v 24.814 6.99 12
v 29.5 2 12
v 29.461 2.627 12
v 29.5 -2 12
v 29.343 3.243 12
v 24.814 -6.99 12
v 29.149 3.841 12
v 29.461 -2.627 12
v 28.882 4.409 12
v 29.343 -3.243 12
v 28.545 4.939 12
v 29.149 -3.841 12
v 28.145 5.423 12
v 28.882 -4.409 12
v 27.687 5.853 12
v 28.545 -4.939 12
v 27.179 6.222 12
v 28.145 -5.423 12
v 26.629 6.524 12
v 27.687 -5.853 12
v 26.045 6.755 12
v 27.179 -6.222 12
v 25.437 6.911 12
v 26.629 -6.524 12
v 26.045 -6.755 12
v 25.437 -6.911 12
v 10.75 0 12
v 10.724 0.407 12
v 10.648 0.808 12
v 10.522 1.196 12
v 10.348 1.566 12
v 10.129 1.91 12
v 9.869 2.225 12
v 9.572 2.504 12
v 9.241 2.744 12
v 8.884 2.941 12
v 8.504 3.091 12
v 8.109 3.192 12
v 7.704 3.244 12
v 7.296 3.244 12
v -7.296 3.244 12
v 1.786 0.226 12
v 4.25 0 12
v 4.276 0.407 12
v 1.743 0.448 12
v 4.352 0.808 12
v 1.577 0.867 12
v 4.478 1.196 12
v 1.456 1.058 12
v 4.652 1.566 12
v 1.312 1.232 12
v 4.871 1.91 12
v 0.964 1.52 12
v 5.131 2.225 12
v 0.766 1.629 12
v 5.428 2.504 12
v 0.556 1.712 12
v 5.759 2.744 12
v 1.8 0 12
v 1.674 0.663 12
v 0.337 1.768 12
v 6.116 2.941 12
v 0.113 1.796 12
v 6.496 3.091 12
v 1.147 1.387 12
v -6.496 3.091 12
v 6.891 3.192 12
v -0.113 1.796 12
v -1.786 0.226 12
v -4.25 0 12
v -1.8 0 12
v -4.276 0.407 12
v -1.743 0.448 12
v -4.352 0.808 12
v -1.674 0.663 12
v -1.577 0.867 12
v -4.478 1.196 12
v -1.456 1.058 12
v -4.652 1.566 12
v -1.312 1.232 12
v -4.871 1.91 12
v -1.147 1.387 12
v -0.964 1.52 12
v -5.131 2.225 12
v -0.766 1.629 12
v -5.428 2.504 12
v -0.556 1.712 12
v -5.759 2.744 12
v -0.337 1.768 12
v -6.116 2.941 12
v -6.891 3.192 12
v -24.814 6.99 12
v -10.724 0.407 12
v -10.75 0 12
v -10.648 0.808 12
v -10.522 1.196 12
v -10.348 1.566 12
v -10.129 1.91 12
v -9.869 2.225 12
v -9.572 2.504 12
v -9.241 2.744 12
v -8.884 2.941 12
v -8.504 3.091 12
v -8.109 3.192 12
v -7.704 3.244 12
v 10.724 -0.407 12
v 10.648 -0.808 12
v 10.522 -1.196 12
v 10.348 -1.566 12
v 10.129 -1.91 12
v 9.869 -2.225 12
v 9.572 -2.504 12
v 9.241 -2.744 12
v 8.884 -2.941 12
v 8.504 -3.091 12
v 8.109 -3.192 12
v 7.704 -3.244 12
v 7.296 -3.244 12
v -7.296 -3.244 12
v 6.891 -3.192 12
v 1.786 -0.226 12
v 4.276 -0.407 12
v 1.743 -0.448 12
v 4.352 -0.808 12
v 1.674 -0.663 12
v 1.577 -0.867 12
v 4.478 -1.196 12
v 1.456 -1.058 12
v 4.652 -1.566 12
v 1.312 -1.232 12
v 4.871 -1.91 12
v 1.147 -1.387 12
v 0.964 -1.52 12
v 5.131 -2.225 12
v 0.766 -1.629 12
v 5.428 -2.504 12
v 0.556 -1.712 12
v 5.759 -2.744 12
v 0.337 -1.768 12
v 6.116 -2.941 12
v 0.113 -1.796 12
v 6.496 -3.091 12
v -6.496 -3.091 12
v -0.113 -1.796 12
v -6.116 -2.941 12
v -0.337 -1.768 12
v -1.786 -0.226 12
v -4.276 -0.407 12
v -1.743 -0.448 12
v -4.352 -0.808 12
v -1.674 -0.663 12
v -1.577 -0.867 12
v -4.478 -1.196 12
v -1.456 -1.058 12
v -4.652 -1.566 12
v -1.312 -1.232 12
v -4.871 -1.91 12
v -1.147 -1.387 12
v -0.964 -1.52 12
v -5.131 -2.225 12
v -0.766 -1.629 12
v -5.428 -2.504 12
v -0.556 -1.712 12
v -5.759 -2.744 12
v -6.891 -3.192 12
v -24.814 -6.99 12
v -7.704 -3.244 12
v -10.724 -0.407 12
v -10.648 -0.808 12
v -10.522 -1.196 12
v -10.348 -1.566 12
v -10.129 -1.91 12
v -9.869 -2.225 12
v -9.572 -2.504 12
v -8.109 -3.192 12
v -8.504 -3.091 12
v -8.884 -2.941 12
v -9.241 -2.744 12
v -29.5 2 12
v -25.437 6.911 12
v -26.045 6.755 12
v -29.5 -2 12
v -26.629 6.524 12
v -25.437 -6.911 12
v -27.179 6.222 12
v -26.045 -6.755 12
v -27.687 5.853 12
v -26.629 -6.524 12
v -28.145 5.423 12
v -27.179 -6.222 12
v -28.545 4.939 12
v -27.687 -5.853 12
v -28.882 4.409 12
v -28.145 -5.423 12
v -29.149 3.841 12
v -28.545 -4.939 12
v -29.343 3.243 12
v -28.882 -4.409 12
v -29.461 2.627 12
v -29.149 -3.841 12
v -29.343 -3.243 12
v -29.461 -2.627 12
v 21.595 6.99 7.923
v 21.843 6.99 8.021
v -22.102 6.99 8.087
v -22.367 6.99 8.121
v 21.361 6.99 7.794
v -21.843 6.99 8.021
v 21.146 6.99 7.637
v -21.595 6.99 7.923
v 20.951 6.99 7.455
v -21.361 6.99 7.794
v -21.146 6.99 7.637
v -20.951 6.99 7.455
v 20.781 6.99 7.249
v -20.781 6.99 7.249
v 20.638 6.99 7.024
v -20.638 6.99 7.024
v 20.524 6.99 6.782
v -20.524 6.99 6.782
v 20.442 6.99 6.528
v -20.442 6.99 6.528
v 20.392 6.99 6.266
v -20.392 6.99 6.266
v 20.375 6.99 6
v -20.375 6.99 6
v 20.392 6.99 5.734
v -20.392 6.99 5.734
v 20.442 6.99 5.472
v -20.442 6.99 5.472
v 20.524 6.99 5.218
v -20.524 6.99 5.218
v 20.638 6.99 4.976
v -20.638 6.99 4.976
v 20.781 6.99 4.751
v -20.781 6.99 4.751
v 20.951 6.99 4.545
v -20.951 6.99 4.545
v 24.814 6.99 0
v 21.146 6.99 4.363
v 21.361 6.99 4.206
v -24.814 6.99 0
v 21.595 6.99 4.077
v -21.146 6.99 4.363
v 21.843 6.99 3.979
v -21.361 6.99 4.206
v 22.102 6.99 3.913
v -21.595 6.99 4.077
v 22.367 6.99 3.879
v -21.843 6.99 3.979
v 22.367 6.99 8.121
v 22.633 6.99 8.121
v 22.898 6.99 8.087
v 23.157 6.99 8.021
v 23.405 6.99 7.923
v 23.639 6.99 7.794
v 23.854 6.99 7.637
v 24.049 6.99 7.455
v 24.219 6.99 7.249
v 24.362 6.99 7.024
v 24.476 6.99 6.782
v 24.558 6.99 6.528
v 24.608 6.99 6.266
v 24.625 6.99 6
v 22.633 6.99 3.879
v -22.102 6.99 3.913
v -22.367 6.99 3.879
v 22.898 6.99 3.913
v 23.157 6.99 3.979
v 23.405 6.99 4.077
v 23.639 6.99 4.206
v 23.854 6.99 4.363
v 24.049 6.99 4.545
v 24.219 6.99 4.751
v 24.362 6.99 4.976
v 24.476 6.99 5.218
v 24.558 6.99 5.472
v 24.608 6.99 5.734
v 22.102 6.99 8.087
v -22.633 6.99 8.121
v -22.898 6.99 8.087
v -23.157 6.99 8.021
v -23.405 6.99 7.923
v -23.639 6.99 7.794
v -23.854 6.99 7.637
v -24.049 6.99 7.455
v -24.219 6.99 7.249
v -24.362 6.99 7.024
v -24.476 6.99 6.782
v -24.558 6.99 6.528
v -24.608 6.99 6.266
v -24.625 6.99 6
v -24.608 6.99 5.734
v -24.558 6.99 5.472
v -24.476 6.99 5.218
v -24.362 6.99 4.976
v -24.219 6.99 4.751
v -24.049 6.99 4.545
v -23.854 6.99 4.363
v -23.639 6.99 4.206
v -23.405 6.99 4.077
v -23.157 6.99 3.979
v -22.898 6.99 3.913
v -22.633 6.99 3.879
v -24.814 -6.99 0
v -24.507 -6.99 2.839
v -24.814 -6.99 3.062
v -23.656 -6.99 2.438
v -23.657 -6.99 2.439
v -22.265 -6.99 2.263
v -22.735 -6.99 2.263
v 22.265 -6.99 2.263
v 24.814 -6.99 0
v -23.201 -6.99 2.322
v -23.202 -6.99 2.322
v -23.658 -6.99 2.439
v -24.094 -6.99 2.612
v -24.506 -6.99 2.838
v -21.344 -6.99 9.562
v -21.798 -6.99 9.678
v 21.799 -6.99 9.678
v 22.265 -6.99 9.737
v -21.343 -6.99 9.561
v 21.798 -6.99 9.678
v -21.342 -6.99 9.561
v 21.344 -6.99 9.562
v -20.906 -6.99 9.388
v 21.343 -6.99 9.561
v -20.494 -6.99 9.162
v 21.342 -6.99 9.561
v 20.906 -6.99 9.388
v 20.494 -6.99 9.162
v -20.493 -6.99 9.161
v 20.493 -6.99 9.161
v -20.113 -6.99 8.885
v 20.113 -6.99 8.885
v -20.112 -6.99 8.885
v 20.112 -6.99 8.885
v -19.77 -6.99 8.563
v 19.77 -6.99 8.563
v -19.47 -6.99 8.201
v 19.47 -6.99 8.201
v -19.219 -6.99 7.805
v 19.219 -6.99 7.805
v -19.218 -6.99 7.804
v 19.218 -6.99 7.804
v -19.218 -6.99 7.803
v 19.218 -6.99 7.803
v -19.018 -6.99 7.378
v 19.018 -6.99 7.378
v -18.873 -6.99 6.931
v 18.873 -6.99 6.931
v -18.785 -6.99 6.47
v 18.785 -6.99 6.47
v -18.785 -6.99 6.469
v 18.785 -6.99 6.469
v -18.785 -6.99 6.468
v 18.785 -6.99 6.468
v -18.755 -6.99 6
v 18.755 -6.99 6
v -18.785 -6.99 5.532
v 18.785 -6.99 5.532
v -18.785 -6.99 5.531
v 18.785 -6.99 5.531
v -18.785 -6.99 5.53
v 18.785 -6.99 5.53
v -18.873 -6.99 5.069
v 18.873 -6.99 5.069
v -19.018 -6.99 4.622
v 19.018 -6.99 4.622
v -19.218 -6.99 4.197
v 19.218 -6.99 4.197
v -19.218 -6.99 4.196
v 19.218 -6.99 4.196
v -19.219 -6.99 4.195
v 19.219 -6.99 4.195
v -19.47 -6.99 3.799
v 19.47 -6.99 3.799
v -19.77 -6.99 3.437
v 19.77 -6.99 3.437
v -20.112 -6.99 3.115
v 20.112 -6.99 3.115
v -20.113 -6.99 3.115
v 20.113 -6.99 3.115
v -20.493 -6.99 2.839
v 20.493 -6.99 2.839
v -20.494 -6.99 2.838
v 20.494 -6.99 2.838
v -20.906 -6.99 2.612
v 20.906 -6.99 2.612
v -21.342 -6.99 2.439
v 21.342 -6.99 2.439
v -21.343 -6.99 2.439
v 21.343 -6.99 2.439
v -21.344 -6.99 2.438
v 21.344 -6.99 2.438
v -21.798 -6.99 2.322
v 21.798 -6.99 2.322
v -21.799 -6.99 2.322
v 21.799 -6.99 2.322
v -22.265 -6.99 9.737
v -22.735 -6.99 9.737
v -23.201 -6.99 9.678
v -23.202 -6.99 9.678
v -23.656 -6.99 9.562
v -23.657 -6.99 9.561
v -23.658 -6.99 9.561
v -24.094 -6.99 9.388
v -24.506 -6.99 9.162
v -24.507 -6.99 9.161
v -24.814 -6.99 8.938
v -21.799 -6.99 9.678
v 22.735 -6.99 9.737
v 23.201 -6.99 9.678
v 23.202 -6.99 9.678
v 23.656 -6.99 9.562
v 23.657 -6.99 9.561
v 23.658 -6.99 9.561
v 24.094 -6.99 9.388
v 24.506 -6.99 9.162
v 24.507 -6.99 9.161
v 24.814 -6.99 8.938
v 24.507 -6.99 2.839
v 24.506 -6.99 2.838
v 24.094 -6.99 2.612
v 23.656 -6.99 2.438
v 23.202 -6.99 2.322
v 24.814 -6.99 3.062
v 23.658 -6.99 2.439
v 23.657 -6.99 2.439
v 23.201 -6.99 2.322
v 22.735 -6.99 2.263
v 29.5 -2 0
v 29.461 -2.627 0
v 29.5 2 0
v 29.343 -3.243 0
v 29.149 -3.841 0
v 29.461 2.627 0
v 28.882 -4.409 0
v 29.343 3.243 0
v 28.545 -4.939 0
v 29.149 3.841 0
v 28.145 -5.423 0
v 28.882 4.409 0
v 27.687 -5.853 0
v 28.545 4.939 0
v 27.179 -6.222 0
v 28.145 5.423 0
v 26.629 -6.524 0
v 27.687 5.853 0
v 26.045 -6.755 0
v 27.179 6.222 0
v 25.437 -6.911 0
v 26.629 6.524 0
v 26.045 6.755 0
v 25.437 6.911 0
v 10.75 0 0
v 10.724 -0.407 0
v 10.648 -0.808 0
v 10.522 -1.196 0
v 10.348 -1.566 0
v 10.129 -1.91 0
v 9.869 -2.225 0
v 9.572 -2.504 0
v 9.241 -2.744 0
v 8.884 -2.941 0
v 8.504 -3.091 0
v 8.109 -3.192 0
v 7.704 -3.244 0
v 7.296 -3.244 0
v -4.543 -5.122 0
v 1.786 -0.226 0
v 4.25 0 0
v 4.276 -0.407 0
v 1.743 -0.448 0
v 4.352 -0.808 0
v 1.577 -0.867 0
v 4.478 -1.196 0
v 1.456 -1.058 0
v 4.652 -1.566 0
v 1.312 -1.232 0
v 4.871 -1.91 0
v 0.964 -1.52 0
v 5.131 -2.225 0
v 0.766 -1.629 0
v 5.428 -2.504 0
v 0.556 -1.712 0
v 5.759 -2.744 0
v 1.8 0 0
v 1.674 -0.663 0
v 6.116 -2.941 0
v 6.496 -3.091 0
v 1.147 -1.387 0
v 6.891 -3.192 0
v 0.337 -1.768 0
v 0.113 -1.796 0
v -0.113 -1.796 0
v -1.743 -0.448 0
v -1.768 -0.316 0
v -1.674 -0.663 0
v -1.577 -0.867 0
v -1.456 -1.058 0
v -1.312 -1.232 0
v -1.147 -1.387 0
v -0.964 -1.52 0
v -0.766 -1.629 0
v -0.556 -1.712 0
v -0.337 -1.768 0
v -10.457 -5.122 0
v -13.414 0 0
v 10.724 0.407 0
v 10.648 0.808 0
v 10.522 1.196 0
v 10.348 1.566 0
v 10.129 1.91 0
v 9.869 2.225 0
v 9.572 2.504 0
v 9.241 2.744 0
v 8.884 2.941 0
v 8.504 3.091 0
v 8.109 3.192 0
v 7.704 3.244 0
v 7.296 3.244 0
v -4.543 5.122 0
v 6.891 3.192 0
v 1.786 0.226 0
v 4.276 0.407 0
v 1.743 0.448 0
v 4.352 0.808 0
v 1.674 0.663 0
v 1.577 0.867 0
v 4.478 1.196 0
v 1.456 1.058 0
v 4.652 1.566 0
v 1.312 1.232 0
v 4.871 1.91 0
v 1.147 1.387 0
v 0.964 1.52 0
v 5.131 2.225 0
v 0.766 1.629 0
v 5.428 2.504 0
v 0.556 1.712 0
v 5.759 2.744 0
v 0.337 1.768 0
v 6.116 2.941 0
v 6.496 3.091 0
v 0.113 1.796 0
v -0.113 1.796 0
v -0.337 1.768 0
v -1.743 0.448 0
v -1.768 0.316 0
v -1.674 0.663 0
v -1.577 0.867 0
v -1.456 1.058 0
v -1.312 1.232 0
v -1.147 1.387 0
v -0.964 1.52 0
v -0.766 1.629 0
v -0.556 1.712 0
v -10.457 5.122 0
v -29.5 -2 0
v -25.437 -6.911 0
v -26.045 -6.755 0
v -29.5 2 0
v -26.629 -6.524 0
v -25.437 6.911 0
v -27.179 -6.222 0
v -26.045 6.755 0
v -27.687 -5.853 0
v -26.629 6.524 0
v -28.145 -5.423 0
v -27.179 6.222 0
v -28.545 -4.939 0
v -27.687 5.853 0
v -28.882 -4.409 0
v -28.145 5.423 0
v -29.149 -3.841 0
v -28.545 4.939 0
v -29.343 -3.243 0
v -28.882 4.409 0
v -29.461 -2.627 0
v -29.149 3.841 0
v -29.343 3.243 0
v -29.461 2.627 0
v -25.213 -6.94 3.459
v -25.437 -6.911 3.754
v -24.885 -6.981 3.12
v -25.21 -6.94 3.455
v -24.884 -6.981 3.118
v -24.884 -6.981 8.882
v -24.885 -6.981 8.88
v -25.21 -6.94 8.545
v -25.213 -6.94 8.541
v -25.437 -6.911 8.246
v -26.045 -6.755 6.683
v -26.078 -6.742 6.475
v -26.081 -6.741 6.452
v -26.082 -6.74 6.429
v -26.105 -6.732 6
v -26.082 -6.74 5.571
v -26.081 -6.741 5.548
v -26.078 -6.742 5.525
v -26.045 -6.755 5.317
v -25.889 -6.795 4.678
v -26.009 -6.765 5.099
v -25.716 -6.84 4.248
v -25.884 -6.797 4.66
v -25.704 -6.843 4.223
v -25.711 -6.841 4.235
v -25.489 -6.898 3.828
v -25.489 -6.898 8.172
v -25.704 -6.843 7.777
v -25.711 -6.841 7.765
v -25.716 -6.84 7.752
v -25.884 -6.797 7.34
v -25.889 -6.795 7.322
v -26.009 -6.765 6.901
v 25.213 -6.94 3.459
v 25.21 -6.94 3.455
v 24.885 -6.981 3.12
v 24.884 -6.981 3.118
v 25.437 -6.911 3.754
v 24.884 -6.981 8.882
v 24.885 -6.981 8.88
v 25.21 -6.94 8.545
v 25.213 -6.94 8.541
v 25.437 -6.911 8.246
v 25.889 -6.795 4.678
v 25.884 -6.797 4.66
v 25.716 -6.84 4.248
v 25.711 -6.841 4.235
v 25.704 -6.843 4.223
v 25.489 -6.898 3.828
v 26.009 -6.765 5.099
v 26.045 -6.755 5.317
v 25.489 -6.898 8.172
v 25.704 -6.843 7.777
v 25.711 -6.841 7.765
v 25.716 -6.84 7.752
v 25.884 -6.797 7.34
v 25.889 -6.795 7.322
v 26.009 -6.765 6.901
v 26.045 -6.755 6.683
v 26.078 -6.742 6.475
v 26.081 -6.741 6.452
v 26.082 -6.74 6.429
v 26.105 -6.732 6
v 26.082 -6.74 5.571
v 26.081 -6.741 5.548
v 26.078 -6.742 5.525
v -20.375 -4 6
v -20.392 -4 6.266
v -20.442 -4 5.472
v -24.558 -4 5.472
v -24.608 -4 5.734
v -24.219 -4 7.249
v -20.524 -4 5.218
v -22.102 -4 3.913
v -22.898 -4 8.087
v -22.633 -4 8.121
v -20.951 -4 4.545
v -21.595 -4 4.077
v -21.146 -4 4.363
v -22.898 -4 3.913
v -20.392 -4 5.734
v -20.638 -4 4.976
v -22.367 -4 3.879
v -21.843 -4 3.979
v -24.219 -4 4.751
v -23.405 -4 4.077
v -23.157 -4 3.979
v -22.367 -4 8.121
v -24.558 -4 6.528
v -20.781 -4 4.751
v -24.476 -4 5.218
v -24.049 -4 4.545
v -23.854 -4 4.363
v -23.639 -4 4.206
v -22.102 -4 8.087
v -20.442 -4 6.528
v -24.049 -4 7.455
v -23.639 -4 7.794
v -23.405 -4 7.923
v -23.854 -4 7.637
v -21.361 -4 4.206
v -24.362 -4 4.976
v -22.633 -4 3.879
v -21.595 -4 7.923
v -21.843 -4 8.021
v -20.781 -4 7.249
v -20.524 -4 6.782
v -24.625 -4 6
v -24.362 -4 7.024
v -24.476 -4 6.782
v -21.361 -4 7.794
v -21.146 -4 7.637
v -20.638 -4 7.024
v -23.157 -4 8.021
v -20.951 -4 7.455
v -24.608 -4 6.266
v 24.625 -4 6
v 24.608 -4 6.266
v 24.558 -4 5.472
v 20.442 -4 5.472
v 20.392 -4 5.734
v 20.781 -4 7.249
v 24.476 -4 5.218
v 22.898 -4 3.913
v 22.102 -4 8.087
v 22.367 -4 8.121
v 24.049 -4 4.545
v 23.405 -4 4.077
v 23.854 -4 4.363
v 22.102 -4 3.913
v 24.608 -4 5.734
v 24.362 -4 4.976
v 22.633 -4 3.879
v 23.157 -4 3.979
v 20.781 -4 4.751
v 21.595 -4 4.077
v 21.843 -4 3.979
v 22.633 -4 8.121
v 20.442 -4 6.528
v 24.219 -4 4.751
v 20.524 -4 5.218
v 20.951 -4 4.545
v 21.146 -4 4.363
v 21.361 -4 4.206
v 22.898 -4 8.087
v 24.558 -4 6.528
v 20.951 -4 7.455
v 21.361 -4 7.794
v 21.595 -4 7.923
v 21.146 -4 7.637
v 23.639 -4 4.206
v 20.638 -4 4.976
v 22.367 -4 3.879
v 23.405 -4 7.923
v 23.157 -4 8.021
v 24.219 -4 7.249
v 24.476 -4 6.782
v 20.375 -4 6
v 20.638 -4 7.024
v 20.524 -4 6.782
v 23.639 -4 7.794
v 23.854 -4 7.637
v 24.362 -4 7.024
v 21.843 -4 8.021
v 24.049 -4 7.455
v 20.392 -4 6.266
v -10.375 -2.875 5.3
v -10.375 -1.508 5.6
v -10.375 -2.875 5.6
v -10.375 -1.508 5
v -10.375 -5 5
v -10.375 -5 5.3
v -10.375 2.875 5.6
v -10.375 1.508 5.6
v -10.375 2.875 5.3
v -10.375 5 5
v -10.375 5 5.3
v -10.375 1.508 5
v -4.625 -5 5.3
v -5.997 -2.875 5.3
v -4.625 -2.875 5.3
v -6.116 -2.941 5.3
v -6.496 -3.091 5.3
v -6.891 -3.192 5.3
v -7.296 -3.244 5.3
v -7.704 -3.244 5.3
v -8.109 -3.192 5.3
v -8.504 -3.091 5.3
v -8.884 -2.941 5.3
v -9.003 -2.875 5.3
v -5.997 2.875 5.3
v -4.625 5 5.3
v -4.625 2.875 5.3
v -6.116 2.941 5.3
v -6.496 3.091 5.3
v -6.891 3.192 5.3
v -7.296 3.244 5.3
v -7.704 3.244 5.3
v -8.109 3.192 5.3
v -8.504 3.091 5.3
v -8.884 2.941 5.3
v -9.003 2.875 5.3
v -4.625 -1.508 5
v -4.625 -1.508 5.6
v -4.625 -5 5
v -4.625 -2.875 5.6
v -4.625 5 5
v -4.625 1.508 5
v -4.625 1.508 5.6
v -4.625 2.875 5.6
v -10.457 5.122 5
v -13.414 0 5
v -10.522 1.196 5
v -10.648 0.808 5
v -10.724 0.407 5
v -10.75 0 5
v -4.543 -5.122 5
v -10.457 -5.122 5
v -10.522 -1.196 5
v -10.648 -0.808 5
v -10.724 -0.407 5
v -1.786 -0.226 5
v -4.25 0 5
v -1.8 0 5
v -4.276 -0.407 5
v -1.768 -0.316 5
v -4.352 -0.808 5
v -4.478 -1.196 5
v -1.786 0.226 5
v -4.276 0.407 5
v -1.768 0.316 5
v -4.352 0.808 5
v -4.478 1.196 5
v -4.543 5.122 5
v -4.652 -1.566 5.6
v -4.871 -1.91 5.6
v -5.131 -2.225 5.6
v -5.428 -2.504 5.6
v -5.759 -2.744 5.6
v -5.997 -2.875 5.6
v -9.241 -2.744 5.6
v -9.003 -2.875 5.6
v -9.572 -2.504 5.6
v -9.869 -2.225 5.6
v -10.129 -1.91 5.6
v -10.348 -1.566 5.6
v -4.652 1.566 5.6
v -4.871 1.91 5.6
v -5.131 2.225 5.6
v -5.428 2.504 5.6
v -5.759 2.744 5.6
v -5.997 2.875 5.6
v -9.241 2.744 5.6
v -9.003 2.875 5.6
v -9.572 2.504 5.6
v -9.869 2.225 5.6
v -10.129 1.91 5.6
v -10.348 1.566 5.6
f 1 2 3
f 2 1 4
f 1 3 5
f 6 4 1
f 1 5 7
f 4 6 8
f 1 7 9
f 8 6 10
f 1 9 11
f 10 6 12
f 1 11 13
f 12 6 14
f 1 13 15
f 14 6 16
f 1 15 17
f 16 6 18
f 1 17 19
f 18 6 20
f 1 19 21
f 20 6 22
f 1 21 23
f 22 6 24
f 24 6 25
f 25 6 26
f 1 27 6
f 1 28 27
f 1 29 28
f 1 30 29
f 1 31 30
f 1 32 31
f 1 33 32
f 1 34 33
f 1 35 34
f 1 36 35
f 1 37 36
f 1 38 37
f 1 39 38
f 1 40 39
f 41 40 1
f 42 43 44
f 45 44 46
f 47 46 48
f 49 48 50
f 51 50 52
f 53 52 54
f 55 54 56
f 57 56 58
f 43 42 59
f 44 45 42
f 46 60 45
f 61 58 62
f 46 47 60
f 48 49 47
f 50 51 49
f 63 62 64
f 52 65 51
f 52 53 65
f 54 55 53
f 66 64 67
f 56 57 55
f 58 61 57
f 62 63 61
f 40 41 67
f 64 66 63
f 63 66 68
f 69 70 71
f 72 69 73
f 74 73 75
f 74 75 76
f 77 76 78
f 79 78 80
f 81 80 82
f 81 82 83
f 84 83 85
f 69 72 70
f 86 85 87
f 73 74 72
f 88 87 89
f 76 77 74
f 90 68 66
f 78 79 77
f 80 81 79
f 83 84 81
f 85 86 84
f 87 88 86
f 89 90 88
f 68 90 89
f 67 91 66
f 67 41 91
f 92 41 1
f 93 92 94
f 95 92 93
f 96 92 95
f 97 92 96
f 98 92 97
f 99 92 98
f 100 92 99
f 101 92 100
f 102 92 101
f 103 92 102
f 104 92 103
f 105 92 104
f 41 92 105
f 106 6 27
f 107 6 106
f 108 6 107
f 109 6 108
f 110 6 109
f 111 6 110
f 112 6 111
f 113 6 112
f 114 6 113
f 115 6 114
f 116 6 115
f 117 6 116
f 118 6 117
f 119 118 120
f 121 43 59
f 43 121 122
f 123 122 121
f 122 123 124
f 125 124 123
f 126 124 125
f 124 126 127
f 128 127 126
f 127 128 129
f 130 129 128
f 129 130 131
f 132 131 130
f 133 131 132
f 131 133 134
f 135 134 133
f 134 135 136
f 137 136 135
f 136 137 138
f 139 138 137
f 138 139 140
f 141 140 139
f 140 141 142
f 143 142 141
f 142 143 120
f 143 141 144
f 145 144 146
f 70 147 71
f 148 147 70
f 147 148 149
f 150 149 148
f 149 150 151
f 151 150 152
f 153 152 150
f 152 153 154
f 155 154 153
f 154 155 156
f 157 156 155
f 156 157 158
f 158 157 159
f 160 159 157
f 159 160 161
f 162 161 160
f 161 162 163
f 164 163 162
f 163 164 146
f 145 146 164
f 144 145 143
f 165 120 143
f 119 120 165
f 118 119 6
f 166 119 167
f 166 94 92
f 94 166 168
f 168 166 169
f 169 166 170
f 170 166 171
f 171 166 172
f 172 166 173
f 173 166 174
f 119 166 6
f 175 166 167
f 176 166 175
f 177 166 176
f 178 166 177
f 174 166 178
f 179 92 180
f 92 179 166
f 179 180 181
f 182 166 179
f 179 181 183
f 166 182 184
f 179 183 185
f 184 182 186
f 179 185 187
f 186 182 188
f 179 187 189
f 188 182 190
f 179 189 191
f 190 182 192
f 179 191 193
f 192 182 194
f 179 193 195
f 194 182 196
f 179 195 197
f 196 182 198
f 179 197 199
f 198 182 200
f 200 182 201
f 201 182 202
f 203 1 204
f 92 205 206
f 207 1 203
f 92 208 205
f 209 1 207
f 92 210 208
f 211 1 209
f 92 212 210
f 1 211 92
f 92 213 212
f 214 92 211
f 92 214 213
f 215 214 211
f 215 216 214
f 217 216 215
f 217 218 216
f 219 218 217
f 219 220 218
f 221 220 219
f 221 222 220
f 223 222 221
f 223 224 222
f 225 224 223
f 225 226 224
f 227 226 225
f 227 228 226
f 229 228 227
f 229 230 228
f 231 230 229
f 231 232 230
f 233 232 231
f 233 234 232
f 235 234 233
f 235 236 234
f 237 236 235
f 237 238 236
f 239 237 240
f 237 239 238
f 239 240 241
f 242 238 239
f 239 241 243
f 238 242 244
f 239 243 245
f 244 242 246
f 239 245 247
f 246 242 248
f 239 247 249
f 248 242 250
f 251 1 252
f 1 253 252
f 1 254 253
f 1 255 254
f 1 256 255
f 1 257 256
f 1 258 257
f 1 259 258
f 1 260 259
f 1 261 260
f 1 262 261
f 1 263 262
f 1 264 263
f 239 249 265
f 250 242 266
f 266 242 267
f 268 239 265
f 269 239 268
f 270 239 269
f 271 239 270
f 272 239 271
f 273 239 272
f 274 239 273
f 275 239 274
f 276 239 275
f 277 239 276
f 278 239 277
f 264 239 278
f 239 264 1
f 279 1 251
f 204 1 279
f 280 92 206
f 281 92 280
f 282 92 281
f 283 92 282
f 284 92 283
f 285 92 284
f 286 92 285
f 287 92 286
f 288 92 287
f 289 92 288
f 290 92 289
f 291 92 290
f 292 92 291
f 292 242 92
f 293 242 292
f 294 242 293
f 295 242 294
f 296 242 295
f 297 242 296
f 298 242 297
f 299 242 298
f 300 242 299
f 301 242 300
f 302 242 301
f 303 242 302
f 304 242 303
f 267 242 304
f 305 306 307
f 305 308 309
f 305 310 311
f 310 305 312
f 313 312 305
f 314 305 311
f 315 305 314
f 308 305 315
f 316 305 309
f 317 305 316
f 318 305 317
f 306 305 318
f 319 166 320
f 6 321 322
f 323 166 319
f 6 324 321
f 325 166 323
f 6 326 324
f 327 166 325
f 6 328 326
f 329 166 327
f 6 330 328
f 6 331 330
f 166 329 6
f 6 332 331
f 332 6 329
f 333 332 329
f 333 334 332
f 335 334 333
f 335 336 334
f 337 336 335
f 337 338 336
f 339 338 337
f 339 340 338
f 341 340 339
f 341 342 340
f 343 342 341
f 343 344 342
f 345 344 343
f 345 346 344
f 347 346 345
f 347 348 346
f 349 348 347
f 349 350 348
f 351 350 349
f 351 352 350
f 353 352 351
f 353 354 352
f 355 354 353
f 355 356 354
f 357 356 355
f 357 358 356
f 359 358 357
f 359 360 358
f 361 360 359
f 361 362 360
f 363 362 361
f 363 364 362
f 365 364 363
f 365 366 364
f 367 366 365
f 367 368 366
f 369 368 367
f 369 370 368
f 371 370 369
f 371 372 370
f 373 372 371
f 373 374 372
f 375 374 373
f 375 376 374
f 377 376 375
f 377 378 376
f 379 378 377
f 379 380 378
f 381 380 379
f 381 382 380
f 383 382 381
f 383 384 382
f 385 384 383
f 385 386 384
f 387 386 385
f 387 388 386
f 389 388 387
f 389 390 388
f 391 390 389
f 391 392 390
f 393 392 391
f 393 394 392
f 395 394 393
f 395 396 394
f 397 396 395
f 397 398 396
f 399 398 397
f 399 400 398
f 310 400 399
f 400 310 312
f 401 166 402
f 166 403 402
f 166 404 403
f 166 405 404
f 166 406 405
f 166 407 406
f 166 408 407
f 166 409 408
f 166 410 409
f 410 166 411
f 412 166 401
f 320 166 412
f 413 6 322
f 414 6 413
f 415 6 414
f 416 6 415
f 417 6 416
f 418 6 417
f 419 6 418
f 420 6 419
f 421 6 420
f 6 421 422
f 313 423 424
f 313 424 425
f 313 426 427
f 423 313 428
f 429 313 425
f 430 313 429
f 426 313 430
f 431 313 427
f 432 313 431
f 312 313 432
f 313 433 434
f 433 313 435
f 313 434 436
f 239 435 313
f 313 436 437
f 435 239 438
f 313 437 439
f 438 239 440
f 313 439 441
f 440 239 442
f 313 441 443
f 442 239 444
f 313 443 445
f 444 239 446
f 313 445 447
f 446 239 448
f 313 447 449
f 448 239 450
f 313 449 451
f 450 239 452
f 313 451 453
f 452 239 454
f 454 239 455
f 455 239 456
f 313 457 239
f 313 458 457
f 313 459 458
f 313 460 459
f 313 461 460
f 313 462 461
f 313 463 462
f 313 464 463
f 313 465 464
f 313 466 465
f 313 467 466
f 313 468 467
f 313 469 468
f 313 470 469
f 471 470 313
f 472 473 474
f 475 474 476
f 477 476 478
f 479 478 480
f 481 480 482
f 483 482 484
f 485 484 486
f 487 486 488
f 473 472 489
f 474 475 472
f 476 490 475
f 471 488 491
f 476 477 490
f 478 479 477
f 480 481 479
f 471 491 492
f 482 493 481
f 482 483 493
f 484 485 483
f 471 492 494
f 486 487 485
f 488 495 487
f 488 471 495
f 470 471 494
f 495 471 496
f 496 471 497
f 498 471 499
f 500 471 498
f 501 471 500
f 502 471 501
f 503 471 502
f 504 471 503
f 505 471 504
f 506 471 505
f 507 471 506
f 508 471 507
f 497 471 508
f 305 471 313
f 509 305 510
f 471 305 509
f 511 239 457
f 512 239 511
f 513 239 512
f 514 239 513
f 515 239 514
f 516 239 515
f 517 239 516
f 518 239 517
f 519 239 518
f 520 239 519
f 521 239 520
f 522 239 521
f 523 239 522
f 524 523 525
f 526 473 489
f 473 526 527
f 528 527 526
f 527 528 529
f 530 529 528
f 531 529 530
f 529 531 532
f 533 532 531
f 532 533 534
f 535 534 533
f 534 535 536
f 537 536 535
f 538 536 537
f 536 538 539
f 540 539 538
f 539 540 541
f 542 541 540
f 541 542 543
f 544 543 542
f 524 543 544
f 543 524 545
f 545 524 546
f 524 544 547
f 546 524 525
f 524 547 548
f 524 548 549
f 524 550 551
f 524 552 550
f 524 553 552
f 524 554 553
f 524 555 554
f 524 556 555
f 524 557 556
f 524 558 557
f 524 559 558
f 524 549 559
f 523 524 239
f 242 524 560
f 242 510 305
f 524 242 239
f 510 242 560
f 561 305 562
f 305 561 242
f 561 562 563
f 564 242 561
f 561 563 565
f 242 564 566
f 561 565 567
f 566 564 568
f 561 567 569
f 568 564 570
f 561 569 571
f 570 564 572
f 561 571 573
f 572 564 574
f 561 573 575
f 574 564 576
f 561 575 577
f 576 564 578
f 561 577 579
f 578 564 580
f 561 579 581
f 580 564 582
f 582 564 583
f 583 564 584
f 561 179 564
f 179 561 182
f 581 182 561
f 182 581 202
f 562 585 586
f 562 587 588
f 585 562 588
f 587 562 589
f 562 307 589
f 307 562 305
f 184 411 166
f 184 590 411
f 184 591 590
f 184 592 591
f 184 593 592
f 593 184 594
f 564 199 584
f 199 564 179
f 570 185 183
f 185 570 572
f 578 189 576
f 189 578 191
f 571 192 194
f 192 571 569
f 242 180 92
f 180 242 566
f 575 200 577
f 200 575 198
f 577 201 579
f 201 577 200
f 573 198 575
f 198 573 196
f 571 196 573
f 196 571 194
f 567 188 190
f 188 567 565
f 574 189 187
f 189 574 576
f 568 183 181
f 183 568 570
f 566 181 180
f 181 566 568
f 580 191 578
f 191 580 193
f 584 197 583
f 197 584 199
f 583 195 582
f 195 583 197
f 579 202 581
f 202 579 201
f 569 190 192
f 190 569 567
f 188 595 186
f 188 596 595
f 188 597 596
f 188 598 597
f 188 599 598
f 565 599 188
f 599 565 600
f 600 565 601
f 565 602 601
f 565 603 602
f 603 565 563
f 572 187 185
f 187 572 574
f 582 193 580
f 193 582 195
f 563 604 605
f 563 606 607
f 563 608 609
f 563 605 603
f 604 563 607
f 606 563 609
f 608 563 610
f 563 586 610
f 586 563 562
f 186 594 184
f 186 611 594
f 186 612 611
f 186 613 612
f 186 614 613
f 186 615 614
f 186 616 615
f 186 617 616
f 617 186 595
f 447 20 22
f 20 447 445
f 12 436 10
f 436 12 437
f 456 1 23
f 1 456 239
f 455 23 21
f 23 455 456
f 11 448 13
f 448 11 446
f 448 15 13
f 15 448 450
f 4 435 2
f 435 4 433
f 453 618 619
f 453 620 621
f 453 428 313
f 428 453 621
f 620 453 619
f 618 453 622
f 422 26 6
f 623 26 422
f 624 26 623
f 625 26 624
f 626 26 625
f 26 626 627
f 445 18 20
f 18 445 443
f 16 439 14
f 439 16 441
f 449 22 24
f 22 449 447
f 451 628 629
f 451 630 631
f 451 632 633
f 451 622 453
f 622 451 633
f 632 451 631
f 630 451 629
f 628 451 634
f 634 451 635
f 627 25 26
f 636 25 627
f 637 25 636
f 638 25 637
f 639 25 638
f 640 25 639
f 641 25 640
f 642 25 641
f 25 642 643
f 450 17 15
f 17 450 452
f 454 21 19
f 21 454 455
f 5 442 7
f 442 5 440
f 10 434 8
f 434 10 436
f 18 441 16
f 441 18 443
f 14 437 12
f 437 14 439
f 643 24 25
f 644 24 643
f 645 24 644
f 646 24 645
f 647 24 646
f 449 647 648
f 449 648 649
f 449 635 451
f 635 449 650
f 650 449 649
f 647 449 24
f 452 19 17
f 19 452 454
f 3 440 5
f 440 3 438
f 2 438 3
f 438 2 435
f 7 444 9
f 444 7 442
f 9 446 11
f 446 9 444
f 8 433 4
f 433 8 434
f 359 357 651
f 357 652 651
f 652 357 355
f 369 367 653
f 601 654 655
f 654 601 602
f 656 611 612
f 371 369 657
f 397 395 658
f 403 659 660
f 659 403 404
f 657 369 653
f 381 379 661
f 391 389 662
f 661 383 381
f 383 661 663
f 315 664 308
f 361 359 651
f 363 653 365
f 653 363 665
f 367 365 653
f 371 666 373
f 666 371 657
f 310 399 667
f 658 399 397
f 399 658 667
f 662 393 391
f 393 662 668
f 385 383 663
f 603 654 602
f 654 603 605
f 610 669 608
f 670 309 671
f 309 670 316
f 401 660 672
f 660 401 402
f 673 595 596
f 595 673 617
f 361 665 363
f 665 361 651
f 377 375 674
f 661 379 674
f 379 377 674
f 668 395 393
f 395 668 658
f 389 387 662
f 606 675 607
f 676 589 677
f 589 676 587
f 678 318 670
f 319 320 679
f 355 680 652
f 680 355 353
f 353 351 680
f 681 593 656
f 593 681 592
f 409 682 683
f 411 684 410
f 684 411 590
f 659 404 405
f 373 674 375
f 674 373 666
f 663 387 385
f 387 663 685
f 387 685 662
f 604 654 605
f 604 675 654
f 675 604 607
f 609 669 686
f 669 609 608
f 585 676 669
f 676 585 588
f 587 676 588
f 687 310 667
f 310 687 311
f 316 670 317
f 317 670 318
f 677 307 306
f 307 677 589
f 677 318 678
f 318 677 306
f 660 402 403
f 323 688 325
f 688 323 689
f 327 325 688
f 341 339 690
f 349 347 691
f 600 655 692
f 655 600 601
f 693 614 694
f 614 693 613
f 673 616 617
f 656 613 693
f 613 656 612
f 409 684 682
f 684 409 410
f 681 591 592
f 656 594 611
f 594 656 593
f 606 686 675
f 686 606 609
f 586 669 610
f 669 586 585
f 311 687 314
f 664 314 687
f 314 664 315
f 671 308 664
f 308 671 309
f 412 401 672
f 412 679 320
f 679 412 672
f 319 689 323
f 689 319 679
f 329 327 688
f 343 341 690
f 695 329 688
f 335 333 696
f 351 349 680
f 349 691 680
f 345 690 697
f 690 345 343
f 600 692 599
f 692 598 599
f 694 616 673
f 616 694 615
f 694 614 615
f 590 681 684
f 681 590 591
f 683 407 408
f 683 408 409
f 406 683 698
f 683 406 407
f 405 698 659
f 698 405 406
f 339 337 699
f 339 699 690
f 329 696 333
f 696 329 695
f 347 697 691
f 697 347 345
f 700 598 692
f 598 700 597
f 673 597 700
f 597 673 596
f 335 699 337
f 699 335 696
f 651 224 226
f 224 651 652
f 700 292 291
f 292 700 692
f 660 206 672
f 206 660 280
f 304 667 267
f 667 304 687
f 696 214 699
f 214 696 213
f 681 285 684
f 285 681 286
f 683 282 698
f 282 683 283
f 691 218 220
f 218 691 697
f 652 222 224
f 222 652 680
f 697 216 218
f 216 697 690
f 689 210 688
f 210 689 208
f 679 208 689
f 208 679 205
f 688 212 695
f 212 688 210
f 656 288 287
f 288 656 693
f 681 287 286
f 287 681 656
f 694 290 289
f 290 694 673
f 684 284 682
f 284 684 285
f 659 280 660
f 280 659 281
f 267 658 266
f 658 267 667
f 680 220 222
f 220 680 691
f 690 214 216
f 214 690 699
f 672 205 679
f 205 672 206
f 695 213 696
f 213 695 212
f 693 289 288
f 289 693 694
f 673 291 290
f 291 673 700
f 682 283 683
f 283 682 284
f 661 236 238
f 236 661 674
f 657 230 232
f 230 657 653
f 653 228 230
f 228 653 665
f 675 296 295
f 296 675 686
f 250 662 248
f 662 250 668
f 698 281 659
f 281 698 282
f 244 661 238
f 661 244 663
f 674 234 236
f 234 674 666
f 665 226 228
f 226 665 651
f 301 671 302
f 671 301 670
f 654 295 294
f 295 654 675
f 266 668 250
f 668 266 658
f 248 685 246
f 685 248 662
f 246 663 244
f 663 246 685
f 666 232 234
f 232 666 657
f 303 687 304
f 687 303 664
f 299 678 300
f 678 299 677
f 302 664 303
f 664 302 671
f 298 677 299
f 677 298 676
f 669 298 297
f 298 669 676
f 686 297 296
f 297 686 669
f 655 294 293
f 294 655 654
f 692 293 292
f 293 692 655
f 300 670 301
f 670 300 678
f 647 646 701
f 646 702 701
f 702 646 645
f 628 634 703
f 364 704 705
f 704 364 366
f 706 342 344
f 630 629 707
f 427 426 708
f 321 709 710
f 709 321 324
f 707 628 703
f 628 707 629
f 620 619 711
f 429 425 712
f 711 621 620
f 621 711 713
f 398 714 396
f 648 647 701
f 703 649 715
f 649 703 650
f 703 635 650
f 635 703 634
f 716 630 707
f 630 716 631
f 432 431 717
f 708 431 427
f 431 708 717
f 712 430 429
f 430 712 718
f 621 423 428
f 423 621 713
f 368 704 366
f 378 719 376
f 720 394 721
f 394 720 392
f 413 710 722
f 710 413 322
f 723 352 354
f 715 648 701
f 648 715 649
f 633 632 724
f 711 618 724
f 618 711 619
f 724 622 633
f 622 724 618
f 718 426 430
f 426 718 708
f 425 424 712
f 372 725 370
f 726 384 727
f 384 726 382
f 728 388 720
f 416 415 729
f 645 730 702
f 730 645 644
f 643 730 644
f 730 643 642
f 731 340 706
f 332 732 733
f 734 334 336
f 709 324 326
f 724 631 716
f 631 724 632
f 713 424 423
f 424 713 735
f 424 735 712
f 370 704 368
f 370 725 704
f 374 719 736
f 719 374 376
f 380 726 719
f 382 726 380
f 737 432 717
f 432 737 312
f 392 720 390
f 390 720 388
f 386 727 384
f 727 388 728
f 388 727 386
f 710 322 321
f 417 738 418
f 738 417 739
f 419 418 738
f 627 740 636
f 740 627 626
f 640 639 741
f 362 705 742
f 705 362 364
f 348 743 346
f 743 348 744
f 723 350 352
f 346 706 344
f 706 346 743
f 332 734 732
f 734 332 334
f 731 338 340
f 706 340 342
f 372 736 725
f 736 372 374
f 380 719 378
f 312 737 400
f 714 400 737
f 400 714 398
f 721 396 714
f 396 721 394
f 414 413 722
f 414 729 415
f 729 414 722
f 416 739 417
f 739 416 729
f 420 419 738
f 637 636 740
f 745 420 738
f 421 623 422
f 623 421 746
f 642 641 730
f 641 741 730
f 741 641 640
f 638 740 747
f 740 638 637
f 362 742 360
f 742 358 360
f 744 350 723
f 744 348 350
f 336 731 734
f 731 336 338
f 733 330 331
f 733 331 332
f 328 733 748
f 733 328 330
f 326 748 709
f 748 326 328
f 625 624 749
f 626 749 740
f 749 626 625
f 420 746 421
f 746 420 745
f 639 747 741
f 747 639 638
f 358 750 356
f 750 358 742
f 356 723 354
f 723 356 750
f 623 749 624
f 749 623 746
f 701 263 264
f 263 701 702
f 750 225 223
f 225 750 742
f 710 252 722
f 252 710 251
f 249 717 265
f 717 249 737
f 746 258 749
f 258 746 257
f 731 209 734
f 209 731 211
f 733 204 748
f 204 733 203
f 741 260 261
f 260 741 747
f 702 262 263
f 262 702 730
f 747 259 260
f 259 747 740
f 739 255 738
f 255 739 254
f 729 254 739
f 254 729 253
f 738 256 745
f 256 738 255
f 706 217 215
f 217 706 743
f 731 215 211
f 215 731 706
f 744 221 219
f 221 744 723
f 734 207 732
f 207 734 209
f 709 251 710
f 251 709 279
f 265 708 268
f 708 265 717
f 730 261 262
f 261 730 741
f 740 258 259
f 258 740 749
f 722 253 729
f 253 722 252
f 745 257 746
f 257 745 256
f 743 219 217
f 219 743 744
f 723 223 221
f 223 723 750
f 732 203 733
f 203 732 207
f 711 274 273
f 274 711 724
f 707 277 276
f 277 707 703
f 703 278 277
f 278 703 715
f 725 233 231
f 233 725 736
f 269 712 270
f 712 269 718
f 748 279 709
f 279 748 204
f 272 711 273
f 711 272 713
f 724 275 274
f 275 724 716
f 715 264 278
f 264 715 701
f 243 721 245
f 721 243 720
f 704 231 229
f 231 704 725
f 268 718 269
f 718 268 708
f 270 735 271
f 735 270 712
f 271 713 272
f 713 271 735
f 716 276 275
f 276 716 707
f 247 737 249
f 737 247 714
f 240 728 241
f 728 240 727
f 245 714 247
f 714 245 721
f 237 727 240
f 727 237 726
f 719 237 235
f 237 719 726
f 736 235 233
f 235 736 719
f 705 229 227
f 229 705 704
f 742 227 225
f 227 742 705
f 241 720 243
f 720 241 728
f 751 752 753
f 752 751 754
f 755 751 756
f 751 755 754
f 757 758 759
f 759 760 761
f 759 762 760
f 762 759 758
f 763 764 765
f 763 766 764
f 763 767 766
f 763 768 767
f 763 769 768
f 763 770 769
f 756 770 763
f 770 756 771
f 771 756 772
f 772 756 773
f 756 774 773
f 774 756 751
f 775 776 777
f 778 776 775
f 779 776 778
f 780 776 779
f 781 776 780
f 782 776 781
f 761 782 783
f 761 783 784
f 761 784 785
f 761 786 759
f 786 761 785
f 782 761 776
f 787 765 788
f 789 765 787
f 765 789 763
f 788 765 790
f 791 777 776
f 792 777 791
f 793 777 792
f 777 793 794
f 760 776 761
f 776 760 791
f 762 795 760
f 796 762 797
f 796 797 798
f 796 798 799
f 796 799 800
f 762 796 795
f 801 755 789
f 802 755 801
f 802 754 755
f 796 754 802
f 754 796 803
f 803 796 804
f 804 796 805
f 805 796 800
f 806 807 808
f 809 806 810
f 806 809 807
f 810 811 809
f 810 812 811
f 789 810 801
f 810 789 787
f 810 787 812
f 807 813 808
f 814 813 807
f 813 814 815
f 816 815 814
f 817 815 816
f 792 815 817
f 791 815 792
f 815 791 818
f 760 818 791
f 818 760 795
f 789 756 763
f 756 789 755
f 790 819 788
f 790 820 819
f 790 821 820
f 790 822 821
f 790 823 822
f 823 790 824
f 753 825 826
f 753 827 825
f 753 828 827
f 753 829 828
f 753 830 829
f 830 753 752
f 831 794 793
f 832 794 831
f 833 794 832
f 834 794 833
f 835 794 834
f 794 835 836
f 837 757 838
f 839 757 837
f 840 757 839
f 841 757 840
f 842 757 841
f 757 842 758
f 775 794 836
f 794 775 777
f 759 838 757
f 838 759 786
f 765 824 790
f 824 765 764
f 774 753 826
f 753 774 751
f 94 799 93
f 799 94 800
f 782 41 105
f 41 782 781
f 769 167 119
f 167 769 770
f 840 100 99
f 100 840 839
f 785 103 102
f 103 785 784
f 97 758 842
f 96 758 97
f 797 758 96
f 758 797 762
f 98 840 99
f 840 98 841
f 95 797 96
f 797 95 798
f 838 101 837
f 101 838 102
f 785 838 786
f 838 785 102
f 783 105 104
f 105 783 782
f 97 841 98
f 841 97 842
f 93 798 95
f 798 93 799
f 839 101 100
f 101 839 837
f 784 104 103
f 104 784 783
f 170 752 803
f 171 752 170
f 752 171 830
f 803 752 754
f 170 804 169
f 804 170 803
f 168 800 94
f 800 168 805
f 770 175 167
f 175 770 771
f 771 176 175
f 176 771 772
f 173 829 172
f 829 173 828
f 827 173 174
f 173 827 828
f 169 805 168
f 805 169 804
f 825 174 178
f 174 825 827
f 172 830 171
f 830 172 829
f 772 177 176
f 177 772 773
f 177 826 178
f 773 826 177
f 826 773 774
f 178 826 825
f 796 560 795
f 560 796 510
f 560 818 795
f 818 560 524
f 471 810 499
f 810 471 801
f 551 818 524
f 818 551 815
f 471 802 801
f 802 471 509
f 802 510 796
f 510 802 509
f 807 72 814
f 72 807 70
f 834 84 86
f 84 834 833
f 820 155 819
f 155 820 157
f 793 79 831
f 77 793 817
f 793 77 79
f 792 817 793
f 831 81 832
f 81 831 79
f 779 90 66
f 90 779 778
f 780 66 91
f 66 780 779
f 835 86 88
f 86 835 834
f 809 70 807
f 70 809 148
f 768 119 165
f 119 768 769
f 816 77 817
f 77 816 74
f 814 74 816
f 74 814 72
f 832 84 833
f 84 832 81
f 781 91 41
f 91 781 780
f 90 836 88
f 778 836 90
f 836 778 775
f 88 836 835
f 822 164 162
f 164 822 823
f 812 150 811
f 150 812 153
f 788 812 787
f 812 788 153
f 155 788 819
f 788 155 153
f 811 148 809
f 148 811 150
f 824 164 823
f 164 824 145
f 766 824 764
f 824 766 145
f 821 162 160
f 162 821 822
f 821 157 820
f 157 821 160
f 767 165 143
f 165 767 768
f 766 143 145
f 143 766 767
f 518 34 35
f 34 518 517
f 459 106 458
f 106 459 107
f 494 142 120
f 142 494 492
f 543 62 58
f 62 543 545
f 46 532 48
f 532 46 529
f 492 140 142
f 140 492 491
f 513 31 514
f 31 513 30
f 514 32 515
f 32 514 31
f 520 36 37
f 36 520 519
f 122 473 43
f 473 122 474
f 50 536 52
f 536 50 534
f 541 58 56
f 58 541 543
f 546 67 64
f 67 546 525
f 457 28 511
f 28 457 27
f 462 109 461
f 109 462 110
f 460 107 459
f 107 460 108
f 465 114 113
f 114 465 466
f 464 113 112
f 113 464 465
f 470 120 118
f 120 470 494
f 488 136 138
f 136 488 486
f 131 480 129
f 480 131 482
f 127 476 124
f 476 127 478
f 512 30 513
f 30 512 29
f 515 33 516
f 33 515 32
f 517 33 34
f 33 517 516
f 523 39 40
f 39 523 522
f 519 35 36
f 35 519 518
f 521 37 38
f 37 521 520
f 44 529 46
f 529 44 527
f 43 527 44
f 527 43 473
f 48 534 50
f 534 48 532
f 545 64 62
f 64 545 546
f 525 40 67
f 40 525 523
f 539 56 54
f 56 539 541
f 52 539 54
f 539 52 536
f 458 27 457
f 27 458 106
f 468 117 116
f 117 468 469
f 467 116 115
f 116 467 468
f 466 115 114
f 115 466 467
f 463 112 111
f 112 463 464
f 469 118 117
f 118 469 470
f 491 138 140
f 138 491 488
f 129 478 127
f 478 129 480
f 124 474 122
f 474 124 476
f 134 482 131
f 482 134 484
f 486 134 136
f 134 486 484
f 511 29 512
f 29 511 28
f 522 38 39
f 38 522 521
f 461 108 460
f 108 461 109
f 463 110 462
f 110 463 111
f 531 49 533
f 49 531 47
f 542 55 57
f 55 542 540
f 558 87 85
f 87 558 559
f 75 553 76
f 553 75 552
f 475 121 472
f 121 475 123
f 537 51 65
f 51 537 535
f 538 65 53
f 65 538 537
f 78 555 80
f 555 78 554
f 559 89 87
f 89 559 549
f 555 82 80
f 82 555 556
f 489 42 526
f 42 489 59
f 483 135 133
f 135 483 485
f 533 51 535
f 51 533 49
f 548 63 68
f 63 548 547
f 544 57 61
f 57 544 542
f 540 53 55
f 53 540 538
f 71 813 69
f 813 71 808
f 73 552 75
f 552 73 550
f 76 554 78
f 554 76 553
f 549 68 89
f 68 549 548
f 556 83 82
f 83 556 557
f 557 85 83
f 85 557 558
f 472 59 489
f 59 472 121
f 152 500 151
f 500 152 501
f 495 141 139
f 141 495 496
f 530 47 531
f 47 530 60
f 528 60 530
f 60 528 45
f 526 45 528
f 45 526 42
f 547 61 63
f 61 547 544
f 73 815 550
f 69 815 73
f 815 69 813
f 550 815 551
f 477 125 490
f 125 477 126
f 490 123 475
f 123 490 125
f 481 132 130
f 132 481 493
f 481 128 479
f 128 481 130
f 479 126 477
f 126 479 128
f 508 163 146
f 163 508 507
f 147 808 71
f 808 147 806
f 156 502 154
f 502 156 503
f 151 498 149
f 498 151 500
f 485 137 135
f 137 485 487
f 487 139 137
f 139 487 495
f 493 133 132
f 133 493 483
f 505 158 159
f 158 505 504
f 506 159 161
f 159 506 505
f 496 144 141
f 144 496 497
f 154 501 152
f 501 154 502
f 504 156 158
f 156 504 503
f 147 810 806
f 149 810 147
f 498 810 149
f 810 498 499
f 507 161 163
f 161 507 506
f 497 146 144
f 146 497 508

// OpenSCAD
$fn = 50;


difference() {
	union() {
		hull() {
			translate(v = [-9.5000000000, 2.0000000000, 0]) {
				cylinder(h = 12, r = 5);
			}
			translate(v = [9.5000000000, 2.0000000000, 0]) {
				cylinder(h = 12, r = 5);
			}
			translate(v = [-9.5000000000, -2.0000000000, 0]) {
				cylinder(h = 12, r = 5);
			}
			translate(v = [9.5000000000, -2.0000000000, 0]) {
				cylinder(h = 12, r = 5);
			}
		}
		translate(v = [-15.0000000000, 0.0000000000, 0]) {
			hull() {
				translate(v = [-9.5000000000, 2.0000000000, 0]) {
					cylinder(h = 12, r = 5);
				}
				translate(v = [9.5000000000, 2.0000000000, 0]) {
					cylinder(h = 12, r = 5);
				}
				translate(v = [-9.5000000000, -2.0000000000, 0]) {
					cylinder(h = 12, r = 5);
				}
				translate(v = [9.5000000000, -2.0000000000, 0]) {
					cylinder(h = 12, r = 5);
				}
			}
		}
		translate(v = [15.0000000000, 0.0000000000, 0]) {
			hull() {
				translate(v = [-9.5000000000, 2.0000000000, 0]) {
					cylinder(h = 12, r = 5);
				}
				translate(v = [9.5000000000, 2.0000000000, 0]) {
					cylinder(h = 12, r = 5);
				}
				translate(v = [-9.5000000000, -2.0000000000, 0]) {
					cylinder(h = 12, r = 5);
				}
				translate(v = [9.5000000000, -2.0000000000, 0]) {
					cylinder(h = 12, r = 5);
				}
			}
		}
	}
	union() {
		translate(v = [-22.5000000000, -7.0000000000, 6.0000000000]) {
			rotate(a = [90, 0, 0]) {
				difference() {
					union() {
						#translate(v = [0, 0, -14.0000000000]) {
							cylinder(h = 14, r = 2.0000000000);
						}
						#translate(v = [0, 0, -3]) {
							cylinder(h = 3, r1 = 2.1250000000, r2 = 3.7500000000);
						}
						#translate(v = [0, 0, -14.0000000000]) {
							cylinder(h = 14, r = 2.1250000000);
						}
						#translate(v = [0, 0, -14.0000000000]) {
							cylinder(h = 14, r = 2.0000000000);
						}
					}
					union();
				}
			}
		}
		translate(v = [22.5000000000, -7.0000000000, 6.0000000000]) {
			rotate(a = [90, 0, 0]) {
				difference() {
					union() {
						#translate(v = [0, 0, -14.0000000000]) {
							cylinder(h = 14, r = 2.0000000000);
						}
						#translate(v = [0, 0, -3]) {
							cylinder(h = 3, r1 = 2.1250000000, r2 = 3.7500000000);
						}
						#translate(v = [0, 0, -14.0000000000]) {
							cylinder(h = 14, r = 2.1250000000);
						}
						#translate(v = [0, 0, -14.0000000000]) {
							cylinder(h = 14, r = 2.0000000000);
						}
					}
					union();
				}
			}
		}
		translate(v = [-7.5000000000, 0.0000000000, 0]) {
			rotate(a = [0, 0, 0]) {
				difference() {
					union() {
						#translate(v = [-2.8750000000, -5.0000000000, -0.3000000000]) {
							cube(size = [5.7500000000, 10, 0.3000000000]);
						}
						#translate(v = [-2.8750000000, -2.8750000000, -0.6000000000]) {
							cube(size = [5.7500000000, 5.7500000000, 0.3000000000]);
						}
						#translate(v = [-2.8750000000, -5.0000000000, 5]) {
							cube(size = [5.7500000000, 10, 0.3000000000]);
						}
						#translate(v = [-2.8750000000, -2.8750000000, 5.3000000000]) {
							cube(size = [5.7500000000, 5.7500000000, 0.3000000000]);
						}
						#translate(v = [0, 0, -100.0000000000]) {
							cylinder(h = 200, r = 3.2500000000);
						}
						#linear_extrude(height = 5) {
							polygon(points = [[5.9142500000, 0.0000000000], [2.9571250000, 5.1218907443], [-2.9571250000, 5.1218907443], [-5.9142500000, 0.0000000000], [-2.9571250000, -5.1218907443], [2.9571250000, -5.1218907443]]);
						}
						#translate(v = [-2.8750000000, -5.0000000000, -0.3000000000]) {
							cube(size = [5.7500000000, 10, 0.3000000000]);
						}
						#translate(v = [-2.8750000000, -2.8750000000, -0.6000000000]) {
							cube(size = [5.7500000000, 5.7500000000, 0.3000000000]);
						}
						#translate(v = [-2.8750000000, -5.0000000000, 5]) {
							cube(size = [5.7500000000, 10, 0.3000000000]);
						}
						#translate(v = [-2.8750000000, -2.8750000000, 5.3000000000]) {
							cube(size = [5.7500000000, 5.7500000000, 0.3000000000]);
						}
						#translate(v = [0, 0, -100.0000000000]) {
							cylinder(h = 200, r = 3.2500000000);
						}
						#translate(v = [-2.8750000000, -5.0000000000, -0.3000000000]) {
							cube(size = [5.7500000000, 10, 0.3000000000]);
						}
						#translate(v = [-2.8750000000, -2.8750000000, -0.6000000000]) {
							cube(size = [5.7500000000, 5.7500000000, 0.3000000000]);
						}
						#translate(v = [-2.8750000000, -5.0000000000, 5]) {
							cube(size = [5.7500000000, 10, 0.3000000000]);
						}
						#translate(v = [-2.8750000000, -2.8750000000, 5.3000000000]) {
							cube(size = [5.7500000000, 5.7500000000, 0.3000000000]);
						}
						#translate(v = [0, 0, -100.0000000000]) {
							cylinder(h = 200, r = 3.2500000000);
						}
					}
					union();
				}
			}
		}
		translate(v = [-7.5000000000, 0.0000000000, 0]) {
			translate(v = [0, 0, -100]) {
				cylinder(h = 200, r = 3.2500000000);
			}
		}
		translate(v = [7.5000000000, 0.0000000000, 0]) {
			translate(v = [0, 0, -100]) {
				cylinder(h = 200, r = 3.2500000000);
			}
		}
		translate(v = [-7.5000000000, 0.0000000000, 0]) {
			translate(v = [0, 0, -100]) {
				cylinder(h = 200, r = 1.8000000000);
			}
		}
		translate(v = [0, 0, -100]) {
			cylinder(h = 200, r = 1.8000000000);
		}
		translate(v = [7.5000000000, 0.0000000000, 0]) {
			translate(v = [0, 0, -100]) {
				cylinder(h = 200, r = 1.8000000000);
			}
		}
	}
}
